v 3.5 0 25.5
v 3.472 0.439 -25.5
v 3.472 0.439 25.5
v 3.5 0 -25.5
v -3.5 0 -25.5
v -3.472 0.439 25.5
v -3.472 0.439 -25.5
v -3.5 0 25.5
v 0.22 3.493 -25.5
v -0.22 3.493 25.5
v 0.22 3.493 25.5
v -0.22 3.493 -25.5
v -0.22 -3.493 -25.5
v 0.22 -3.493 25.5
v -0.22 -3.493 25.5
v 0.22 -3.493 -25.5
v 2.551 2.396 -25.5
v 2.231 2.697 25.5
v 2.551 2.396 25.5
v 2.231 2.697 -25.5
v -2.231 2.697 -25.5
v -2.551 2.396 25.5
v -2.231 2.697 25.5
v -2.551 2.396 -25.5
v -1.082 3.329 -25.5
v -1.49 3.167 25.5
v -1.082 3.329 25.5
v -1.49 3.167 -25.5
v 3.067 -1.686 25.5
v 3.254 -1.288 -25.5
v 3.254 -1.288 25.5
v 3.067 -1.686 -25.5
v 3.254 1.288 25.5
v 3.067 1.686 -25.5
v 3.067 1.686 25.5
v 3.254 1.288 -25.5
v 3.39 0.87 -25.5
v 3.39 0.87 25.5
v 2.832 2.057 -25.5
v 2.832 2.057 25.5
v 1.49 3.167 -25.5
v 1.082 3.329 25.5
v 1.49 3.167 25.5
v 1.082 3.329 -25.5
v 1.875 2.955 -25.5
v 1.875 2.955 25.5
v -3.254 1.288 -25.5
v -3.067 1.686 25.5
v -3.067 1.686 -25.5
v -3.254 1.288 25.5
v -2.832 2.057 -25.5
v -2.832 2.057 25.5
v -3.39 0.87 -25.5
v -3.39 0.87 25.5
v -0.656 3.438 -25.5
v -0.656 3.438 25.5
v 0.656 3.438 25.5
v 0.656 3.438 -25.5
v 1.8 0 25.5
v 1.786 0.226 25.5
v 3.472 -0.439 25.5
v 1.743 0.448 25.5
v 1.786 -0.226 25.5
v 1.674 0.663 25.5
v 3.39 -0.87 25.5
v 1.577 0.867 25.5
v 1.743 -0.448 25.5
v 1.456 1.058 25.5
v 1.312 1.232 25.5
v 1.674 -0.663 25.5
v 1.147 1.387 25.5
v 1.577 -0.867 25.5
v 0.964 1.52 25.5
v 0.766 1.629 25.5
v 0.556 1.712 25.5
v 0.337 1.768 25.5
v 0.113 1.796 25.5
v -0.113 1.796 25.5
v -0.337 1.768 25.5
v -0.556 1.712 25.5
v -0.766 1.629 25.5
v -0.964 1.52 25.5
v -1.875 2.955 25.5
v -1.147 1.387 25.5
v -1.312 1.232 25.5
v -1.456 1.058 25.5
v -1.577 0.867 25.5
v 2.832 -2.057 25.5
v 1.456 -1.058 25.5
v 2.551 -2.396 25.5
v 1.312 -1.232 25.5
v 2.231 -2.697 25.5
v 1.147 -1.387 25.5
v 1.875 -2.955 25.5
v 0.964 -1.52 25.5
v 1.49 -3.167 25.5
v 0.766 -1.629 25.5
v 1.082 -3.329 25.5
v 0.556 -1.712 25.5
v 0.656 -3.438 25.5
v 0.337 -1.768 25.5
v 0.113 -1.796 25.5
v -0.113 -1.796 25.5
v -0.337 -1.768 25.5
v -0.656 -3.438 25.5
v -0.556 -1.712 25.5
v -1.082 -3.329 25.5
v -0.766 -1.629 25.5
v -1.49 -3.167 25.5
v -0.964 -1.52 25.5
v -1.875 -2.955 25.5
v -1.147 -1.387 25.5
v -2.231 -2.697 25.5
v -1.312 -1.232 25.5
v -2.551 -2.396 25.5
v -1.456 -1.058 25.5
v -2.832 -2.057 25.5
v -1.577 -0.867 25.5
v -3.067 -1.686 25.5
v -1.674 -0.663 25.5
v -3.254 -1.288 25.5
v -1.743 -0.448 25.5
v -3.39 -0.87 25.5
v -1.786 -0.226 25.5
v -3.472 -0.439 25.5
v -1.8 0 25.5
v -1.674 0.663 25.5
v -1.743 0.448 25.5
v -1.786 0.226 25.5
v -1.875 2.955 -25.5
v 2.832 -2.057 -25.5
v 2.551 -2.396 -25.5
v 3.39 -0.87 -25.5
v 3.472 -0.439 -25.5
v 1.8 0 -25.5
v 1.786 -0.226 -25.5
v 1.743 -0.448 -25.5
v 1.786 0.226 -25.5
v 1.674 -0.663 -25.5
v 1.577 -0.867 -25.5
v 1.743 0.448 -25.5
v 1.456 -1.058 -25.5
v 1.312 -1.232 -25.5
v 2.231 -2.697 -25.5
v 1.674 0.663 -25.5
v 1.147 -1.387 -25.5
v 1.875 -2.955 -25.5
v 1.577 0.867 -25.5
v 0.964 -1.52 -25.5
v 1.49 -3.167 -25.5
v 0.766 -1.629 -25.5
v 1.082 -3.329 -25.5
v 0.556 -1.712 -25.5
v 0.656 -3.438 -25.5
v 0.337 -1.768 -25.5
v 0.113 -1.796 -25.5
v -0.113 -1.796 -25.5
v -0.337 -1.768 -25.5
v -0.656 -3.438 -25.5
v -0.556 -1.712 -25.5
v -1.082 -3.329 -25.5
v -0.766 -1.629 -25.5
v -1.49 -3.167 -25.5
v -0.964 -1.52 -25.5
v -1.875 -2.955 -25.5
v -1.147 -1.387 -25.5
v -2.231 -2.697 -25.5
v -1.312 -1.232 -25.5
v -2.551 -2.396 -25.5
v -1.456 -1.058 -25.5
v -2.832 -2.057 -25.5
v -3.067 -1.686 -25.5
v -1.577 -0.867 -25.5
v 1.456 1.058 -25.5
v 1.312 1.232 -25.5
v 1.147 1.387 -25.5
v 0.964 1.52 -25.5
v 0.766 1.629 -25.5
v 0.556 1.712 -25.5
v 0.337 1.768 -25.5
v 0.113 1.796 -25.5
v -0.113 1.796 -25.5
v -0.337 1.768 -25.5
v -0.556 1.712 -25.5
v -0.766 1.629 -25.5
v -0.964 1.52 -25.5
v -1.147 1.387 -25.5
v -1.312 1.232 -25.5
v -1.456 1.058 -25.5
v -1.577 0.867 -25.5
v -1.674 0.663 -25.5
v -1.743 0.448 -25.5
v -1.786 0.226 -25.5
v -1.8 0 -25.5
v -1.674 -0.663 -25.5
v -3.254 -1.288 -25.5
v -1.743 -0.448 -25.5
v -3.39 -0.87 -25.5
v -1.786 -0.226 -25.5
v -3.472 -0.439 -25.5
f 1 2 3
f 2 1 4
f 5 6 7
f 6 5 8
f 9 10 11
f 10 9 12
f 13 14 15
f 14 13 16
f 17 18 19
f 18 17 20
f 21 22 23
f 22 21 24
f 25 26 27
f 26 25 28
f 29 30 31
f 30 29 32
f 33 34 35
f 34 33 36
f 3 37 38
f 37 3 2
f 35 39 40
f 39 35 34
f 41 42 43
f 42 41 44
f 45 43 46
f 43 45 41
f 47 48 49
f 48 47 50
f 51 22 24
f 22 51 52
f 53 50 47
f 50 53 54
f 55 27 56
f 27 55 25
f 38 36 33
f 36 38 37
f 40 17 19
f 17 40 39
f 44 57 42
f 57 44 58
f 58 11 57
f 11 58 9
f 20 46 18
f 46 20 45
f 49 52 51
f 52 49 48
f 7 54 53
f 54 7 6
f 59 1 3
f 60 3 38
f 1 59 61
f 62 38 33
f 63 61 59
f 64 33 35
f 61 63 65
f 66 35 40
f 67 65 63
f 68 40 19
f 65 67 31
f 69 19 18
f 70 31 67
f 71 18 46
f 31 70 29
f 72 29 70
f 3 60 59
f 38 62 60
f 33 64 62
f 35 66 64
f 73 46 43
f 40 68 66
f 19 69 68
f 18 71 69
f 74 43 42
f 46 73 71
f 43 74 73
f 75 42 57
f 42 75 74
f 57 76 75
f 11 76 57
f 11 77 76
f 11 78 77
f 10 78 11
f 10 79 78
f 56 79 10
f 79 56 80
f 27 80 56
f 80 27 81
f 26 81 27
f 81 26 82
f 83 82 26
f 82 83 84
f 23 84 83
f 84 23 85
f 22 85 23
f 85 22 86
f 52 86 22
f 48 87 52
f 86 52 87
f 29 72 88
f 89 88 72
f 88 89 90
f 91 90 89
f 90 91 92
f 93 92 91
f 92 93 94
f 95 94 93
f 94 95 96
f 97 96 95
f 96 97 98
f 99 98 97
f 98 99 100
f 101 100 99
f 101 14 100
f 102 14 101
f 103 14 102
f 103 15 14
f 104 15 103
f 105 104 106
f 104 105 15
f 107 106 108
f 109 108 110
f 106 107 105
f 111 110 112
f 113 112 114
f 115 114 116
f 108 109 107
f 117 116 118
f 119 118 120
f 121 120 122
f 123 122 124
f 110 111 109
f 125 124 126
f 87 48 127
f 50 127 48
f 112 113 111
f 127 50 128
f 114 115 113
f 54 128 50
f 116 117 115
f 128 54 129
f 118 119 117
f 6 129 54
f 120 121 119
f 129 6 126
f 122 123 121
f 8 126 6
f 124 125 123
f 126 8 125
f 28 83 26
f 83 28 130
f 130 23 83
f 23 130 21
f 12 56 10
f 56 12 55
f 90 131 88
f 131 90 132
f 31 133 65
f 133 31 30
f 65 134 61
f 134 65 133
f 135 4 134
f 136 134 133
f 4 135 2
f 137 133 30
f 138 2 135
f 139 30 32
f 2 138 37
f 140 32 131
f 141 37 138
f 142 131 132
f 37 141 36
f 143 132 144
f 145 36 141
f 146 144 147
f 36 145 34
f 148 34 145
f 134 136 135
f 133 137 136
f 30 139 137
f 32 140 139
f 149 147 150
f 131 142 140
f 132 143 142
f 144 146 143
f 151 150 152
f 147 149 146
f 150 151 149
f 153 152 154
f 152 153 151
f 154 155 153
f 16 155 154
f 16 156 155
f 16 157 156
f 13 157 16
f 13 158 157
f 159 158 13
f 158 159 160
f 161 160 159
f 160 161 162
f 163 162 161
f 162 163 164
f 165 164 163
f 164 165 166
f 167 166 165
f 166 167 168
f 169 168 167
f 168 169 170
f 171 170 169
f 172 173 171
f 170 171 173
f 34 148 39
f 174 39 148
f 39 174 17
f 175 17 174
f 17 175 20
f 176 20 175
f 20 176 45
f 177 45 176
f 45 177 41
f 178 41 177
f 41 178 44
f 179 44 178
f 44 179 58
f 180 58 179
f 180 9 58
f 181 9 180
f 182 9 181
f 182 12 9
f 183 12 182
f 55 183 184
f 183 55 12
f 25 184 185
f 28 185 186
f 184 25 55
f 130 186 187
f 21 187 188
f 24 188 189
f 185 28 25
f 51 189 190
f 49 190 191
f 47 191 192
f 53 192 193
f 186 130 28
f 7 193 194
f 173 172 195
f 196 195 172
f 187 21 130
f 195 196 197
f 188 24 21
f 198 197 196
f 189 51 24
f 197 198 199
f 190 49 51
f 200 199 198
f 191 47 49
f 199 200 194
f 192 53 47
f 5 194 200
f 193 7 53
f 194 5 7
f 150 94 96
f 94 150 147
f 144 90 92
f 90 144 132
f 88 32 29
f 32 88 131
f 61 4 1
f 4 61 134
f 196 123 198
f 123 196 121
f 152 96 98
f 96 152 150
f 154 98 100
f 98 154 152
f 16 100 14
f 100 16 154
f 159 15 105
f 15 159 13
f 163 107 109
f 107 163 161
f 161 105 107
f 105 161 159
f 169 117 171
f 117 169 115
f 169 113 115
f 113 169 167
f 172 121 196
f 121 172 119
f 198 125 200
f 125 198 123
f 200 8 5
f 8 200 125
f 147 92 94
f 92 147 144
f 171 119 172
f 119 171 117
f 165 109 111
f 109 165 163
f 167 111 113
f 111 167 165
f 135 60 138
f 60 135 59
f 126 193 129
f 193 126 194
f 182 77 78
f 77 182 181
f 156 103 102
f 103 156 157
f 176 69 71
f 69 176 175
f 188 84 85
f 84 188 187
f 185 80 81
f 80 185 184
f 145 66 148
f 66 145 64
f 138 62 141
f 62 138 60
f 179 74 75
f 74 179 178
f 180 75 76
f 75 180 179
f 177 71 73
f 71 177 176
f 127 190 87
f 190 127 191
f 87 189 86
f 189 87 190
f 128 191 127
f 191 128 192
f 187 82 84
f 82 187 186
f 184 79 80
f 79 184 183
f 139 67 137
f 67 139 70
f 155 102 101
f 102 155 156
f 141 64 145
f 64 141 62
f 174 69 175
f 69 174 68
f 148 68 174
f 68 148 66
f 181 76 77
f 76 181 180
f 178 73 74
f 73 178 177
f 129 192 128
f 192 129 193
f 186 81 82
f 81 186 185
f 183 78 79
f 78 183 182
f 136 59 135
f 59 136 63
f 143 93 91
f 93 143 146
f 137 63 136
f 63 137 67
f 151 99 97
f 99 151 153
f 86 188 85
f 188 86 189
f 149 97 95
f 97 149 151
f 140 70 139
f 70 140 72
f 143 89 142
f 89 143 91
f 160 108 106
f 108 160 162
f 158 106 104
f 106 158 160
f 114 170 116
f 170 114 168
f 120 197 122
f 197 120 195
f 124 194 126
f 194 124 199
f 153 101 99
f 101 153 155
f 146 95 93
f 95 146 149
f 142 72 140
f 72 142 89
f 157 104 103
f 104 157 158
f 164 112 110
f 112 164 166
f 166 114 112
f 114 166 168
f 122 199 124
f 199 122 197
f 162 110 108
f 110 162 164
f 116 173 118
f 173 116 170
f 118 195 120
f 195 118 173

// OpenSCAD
$fn = 50;


difference() {
	union() {
		translate(v = [0, 0, -25.5000000000]) {
			cylinder(h = 51, r = 3.5000000000);
		}
	}
	union() {
		translate(v = [0, 0, -100.0000000000]) {
			cylinder(h = 200, r = 1.8000000000);
		}
	}
}
